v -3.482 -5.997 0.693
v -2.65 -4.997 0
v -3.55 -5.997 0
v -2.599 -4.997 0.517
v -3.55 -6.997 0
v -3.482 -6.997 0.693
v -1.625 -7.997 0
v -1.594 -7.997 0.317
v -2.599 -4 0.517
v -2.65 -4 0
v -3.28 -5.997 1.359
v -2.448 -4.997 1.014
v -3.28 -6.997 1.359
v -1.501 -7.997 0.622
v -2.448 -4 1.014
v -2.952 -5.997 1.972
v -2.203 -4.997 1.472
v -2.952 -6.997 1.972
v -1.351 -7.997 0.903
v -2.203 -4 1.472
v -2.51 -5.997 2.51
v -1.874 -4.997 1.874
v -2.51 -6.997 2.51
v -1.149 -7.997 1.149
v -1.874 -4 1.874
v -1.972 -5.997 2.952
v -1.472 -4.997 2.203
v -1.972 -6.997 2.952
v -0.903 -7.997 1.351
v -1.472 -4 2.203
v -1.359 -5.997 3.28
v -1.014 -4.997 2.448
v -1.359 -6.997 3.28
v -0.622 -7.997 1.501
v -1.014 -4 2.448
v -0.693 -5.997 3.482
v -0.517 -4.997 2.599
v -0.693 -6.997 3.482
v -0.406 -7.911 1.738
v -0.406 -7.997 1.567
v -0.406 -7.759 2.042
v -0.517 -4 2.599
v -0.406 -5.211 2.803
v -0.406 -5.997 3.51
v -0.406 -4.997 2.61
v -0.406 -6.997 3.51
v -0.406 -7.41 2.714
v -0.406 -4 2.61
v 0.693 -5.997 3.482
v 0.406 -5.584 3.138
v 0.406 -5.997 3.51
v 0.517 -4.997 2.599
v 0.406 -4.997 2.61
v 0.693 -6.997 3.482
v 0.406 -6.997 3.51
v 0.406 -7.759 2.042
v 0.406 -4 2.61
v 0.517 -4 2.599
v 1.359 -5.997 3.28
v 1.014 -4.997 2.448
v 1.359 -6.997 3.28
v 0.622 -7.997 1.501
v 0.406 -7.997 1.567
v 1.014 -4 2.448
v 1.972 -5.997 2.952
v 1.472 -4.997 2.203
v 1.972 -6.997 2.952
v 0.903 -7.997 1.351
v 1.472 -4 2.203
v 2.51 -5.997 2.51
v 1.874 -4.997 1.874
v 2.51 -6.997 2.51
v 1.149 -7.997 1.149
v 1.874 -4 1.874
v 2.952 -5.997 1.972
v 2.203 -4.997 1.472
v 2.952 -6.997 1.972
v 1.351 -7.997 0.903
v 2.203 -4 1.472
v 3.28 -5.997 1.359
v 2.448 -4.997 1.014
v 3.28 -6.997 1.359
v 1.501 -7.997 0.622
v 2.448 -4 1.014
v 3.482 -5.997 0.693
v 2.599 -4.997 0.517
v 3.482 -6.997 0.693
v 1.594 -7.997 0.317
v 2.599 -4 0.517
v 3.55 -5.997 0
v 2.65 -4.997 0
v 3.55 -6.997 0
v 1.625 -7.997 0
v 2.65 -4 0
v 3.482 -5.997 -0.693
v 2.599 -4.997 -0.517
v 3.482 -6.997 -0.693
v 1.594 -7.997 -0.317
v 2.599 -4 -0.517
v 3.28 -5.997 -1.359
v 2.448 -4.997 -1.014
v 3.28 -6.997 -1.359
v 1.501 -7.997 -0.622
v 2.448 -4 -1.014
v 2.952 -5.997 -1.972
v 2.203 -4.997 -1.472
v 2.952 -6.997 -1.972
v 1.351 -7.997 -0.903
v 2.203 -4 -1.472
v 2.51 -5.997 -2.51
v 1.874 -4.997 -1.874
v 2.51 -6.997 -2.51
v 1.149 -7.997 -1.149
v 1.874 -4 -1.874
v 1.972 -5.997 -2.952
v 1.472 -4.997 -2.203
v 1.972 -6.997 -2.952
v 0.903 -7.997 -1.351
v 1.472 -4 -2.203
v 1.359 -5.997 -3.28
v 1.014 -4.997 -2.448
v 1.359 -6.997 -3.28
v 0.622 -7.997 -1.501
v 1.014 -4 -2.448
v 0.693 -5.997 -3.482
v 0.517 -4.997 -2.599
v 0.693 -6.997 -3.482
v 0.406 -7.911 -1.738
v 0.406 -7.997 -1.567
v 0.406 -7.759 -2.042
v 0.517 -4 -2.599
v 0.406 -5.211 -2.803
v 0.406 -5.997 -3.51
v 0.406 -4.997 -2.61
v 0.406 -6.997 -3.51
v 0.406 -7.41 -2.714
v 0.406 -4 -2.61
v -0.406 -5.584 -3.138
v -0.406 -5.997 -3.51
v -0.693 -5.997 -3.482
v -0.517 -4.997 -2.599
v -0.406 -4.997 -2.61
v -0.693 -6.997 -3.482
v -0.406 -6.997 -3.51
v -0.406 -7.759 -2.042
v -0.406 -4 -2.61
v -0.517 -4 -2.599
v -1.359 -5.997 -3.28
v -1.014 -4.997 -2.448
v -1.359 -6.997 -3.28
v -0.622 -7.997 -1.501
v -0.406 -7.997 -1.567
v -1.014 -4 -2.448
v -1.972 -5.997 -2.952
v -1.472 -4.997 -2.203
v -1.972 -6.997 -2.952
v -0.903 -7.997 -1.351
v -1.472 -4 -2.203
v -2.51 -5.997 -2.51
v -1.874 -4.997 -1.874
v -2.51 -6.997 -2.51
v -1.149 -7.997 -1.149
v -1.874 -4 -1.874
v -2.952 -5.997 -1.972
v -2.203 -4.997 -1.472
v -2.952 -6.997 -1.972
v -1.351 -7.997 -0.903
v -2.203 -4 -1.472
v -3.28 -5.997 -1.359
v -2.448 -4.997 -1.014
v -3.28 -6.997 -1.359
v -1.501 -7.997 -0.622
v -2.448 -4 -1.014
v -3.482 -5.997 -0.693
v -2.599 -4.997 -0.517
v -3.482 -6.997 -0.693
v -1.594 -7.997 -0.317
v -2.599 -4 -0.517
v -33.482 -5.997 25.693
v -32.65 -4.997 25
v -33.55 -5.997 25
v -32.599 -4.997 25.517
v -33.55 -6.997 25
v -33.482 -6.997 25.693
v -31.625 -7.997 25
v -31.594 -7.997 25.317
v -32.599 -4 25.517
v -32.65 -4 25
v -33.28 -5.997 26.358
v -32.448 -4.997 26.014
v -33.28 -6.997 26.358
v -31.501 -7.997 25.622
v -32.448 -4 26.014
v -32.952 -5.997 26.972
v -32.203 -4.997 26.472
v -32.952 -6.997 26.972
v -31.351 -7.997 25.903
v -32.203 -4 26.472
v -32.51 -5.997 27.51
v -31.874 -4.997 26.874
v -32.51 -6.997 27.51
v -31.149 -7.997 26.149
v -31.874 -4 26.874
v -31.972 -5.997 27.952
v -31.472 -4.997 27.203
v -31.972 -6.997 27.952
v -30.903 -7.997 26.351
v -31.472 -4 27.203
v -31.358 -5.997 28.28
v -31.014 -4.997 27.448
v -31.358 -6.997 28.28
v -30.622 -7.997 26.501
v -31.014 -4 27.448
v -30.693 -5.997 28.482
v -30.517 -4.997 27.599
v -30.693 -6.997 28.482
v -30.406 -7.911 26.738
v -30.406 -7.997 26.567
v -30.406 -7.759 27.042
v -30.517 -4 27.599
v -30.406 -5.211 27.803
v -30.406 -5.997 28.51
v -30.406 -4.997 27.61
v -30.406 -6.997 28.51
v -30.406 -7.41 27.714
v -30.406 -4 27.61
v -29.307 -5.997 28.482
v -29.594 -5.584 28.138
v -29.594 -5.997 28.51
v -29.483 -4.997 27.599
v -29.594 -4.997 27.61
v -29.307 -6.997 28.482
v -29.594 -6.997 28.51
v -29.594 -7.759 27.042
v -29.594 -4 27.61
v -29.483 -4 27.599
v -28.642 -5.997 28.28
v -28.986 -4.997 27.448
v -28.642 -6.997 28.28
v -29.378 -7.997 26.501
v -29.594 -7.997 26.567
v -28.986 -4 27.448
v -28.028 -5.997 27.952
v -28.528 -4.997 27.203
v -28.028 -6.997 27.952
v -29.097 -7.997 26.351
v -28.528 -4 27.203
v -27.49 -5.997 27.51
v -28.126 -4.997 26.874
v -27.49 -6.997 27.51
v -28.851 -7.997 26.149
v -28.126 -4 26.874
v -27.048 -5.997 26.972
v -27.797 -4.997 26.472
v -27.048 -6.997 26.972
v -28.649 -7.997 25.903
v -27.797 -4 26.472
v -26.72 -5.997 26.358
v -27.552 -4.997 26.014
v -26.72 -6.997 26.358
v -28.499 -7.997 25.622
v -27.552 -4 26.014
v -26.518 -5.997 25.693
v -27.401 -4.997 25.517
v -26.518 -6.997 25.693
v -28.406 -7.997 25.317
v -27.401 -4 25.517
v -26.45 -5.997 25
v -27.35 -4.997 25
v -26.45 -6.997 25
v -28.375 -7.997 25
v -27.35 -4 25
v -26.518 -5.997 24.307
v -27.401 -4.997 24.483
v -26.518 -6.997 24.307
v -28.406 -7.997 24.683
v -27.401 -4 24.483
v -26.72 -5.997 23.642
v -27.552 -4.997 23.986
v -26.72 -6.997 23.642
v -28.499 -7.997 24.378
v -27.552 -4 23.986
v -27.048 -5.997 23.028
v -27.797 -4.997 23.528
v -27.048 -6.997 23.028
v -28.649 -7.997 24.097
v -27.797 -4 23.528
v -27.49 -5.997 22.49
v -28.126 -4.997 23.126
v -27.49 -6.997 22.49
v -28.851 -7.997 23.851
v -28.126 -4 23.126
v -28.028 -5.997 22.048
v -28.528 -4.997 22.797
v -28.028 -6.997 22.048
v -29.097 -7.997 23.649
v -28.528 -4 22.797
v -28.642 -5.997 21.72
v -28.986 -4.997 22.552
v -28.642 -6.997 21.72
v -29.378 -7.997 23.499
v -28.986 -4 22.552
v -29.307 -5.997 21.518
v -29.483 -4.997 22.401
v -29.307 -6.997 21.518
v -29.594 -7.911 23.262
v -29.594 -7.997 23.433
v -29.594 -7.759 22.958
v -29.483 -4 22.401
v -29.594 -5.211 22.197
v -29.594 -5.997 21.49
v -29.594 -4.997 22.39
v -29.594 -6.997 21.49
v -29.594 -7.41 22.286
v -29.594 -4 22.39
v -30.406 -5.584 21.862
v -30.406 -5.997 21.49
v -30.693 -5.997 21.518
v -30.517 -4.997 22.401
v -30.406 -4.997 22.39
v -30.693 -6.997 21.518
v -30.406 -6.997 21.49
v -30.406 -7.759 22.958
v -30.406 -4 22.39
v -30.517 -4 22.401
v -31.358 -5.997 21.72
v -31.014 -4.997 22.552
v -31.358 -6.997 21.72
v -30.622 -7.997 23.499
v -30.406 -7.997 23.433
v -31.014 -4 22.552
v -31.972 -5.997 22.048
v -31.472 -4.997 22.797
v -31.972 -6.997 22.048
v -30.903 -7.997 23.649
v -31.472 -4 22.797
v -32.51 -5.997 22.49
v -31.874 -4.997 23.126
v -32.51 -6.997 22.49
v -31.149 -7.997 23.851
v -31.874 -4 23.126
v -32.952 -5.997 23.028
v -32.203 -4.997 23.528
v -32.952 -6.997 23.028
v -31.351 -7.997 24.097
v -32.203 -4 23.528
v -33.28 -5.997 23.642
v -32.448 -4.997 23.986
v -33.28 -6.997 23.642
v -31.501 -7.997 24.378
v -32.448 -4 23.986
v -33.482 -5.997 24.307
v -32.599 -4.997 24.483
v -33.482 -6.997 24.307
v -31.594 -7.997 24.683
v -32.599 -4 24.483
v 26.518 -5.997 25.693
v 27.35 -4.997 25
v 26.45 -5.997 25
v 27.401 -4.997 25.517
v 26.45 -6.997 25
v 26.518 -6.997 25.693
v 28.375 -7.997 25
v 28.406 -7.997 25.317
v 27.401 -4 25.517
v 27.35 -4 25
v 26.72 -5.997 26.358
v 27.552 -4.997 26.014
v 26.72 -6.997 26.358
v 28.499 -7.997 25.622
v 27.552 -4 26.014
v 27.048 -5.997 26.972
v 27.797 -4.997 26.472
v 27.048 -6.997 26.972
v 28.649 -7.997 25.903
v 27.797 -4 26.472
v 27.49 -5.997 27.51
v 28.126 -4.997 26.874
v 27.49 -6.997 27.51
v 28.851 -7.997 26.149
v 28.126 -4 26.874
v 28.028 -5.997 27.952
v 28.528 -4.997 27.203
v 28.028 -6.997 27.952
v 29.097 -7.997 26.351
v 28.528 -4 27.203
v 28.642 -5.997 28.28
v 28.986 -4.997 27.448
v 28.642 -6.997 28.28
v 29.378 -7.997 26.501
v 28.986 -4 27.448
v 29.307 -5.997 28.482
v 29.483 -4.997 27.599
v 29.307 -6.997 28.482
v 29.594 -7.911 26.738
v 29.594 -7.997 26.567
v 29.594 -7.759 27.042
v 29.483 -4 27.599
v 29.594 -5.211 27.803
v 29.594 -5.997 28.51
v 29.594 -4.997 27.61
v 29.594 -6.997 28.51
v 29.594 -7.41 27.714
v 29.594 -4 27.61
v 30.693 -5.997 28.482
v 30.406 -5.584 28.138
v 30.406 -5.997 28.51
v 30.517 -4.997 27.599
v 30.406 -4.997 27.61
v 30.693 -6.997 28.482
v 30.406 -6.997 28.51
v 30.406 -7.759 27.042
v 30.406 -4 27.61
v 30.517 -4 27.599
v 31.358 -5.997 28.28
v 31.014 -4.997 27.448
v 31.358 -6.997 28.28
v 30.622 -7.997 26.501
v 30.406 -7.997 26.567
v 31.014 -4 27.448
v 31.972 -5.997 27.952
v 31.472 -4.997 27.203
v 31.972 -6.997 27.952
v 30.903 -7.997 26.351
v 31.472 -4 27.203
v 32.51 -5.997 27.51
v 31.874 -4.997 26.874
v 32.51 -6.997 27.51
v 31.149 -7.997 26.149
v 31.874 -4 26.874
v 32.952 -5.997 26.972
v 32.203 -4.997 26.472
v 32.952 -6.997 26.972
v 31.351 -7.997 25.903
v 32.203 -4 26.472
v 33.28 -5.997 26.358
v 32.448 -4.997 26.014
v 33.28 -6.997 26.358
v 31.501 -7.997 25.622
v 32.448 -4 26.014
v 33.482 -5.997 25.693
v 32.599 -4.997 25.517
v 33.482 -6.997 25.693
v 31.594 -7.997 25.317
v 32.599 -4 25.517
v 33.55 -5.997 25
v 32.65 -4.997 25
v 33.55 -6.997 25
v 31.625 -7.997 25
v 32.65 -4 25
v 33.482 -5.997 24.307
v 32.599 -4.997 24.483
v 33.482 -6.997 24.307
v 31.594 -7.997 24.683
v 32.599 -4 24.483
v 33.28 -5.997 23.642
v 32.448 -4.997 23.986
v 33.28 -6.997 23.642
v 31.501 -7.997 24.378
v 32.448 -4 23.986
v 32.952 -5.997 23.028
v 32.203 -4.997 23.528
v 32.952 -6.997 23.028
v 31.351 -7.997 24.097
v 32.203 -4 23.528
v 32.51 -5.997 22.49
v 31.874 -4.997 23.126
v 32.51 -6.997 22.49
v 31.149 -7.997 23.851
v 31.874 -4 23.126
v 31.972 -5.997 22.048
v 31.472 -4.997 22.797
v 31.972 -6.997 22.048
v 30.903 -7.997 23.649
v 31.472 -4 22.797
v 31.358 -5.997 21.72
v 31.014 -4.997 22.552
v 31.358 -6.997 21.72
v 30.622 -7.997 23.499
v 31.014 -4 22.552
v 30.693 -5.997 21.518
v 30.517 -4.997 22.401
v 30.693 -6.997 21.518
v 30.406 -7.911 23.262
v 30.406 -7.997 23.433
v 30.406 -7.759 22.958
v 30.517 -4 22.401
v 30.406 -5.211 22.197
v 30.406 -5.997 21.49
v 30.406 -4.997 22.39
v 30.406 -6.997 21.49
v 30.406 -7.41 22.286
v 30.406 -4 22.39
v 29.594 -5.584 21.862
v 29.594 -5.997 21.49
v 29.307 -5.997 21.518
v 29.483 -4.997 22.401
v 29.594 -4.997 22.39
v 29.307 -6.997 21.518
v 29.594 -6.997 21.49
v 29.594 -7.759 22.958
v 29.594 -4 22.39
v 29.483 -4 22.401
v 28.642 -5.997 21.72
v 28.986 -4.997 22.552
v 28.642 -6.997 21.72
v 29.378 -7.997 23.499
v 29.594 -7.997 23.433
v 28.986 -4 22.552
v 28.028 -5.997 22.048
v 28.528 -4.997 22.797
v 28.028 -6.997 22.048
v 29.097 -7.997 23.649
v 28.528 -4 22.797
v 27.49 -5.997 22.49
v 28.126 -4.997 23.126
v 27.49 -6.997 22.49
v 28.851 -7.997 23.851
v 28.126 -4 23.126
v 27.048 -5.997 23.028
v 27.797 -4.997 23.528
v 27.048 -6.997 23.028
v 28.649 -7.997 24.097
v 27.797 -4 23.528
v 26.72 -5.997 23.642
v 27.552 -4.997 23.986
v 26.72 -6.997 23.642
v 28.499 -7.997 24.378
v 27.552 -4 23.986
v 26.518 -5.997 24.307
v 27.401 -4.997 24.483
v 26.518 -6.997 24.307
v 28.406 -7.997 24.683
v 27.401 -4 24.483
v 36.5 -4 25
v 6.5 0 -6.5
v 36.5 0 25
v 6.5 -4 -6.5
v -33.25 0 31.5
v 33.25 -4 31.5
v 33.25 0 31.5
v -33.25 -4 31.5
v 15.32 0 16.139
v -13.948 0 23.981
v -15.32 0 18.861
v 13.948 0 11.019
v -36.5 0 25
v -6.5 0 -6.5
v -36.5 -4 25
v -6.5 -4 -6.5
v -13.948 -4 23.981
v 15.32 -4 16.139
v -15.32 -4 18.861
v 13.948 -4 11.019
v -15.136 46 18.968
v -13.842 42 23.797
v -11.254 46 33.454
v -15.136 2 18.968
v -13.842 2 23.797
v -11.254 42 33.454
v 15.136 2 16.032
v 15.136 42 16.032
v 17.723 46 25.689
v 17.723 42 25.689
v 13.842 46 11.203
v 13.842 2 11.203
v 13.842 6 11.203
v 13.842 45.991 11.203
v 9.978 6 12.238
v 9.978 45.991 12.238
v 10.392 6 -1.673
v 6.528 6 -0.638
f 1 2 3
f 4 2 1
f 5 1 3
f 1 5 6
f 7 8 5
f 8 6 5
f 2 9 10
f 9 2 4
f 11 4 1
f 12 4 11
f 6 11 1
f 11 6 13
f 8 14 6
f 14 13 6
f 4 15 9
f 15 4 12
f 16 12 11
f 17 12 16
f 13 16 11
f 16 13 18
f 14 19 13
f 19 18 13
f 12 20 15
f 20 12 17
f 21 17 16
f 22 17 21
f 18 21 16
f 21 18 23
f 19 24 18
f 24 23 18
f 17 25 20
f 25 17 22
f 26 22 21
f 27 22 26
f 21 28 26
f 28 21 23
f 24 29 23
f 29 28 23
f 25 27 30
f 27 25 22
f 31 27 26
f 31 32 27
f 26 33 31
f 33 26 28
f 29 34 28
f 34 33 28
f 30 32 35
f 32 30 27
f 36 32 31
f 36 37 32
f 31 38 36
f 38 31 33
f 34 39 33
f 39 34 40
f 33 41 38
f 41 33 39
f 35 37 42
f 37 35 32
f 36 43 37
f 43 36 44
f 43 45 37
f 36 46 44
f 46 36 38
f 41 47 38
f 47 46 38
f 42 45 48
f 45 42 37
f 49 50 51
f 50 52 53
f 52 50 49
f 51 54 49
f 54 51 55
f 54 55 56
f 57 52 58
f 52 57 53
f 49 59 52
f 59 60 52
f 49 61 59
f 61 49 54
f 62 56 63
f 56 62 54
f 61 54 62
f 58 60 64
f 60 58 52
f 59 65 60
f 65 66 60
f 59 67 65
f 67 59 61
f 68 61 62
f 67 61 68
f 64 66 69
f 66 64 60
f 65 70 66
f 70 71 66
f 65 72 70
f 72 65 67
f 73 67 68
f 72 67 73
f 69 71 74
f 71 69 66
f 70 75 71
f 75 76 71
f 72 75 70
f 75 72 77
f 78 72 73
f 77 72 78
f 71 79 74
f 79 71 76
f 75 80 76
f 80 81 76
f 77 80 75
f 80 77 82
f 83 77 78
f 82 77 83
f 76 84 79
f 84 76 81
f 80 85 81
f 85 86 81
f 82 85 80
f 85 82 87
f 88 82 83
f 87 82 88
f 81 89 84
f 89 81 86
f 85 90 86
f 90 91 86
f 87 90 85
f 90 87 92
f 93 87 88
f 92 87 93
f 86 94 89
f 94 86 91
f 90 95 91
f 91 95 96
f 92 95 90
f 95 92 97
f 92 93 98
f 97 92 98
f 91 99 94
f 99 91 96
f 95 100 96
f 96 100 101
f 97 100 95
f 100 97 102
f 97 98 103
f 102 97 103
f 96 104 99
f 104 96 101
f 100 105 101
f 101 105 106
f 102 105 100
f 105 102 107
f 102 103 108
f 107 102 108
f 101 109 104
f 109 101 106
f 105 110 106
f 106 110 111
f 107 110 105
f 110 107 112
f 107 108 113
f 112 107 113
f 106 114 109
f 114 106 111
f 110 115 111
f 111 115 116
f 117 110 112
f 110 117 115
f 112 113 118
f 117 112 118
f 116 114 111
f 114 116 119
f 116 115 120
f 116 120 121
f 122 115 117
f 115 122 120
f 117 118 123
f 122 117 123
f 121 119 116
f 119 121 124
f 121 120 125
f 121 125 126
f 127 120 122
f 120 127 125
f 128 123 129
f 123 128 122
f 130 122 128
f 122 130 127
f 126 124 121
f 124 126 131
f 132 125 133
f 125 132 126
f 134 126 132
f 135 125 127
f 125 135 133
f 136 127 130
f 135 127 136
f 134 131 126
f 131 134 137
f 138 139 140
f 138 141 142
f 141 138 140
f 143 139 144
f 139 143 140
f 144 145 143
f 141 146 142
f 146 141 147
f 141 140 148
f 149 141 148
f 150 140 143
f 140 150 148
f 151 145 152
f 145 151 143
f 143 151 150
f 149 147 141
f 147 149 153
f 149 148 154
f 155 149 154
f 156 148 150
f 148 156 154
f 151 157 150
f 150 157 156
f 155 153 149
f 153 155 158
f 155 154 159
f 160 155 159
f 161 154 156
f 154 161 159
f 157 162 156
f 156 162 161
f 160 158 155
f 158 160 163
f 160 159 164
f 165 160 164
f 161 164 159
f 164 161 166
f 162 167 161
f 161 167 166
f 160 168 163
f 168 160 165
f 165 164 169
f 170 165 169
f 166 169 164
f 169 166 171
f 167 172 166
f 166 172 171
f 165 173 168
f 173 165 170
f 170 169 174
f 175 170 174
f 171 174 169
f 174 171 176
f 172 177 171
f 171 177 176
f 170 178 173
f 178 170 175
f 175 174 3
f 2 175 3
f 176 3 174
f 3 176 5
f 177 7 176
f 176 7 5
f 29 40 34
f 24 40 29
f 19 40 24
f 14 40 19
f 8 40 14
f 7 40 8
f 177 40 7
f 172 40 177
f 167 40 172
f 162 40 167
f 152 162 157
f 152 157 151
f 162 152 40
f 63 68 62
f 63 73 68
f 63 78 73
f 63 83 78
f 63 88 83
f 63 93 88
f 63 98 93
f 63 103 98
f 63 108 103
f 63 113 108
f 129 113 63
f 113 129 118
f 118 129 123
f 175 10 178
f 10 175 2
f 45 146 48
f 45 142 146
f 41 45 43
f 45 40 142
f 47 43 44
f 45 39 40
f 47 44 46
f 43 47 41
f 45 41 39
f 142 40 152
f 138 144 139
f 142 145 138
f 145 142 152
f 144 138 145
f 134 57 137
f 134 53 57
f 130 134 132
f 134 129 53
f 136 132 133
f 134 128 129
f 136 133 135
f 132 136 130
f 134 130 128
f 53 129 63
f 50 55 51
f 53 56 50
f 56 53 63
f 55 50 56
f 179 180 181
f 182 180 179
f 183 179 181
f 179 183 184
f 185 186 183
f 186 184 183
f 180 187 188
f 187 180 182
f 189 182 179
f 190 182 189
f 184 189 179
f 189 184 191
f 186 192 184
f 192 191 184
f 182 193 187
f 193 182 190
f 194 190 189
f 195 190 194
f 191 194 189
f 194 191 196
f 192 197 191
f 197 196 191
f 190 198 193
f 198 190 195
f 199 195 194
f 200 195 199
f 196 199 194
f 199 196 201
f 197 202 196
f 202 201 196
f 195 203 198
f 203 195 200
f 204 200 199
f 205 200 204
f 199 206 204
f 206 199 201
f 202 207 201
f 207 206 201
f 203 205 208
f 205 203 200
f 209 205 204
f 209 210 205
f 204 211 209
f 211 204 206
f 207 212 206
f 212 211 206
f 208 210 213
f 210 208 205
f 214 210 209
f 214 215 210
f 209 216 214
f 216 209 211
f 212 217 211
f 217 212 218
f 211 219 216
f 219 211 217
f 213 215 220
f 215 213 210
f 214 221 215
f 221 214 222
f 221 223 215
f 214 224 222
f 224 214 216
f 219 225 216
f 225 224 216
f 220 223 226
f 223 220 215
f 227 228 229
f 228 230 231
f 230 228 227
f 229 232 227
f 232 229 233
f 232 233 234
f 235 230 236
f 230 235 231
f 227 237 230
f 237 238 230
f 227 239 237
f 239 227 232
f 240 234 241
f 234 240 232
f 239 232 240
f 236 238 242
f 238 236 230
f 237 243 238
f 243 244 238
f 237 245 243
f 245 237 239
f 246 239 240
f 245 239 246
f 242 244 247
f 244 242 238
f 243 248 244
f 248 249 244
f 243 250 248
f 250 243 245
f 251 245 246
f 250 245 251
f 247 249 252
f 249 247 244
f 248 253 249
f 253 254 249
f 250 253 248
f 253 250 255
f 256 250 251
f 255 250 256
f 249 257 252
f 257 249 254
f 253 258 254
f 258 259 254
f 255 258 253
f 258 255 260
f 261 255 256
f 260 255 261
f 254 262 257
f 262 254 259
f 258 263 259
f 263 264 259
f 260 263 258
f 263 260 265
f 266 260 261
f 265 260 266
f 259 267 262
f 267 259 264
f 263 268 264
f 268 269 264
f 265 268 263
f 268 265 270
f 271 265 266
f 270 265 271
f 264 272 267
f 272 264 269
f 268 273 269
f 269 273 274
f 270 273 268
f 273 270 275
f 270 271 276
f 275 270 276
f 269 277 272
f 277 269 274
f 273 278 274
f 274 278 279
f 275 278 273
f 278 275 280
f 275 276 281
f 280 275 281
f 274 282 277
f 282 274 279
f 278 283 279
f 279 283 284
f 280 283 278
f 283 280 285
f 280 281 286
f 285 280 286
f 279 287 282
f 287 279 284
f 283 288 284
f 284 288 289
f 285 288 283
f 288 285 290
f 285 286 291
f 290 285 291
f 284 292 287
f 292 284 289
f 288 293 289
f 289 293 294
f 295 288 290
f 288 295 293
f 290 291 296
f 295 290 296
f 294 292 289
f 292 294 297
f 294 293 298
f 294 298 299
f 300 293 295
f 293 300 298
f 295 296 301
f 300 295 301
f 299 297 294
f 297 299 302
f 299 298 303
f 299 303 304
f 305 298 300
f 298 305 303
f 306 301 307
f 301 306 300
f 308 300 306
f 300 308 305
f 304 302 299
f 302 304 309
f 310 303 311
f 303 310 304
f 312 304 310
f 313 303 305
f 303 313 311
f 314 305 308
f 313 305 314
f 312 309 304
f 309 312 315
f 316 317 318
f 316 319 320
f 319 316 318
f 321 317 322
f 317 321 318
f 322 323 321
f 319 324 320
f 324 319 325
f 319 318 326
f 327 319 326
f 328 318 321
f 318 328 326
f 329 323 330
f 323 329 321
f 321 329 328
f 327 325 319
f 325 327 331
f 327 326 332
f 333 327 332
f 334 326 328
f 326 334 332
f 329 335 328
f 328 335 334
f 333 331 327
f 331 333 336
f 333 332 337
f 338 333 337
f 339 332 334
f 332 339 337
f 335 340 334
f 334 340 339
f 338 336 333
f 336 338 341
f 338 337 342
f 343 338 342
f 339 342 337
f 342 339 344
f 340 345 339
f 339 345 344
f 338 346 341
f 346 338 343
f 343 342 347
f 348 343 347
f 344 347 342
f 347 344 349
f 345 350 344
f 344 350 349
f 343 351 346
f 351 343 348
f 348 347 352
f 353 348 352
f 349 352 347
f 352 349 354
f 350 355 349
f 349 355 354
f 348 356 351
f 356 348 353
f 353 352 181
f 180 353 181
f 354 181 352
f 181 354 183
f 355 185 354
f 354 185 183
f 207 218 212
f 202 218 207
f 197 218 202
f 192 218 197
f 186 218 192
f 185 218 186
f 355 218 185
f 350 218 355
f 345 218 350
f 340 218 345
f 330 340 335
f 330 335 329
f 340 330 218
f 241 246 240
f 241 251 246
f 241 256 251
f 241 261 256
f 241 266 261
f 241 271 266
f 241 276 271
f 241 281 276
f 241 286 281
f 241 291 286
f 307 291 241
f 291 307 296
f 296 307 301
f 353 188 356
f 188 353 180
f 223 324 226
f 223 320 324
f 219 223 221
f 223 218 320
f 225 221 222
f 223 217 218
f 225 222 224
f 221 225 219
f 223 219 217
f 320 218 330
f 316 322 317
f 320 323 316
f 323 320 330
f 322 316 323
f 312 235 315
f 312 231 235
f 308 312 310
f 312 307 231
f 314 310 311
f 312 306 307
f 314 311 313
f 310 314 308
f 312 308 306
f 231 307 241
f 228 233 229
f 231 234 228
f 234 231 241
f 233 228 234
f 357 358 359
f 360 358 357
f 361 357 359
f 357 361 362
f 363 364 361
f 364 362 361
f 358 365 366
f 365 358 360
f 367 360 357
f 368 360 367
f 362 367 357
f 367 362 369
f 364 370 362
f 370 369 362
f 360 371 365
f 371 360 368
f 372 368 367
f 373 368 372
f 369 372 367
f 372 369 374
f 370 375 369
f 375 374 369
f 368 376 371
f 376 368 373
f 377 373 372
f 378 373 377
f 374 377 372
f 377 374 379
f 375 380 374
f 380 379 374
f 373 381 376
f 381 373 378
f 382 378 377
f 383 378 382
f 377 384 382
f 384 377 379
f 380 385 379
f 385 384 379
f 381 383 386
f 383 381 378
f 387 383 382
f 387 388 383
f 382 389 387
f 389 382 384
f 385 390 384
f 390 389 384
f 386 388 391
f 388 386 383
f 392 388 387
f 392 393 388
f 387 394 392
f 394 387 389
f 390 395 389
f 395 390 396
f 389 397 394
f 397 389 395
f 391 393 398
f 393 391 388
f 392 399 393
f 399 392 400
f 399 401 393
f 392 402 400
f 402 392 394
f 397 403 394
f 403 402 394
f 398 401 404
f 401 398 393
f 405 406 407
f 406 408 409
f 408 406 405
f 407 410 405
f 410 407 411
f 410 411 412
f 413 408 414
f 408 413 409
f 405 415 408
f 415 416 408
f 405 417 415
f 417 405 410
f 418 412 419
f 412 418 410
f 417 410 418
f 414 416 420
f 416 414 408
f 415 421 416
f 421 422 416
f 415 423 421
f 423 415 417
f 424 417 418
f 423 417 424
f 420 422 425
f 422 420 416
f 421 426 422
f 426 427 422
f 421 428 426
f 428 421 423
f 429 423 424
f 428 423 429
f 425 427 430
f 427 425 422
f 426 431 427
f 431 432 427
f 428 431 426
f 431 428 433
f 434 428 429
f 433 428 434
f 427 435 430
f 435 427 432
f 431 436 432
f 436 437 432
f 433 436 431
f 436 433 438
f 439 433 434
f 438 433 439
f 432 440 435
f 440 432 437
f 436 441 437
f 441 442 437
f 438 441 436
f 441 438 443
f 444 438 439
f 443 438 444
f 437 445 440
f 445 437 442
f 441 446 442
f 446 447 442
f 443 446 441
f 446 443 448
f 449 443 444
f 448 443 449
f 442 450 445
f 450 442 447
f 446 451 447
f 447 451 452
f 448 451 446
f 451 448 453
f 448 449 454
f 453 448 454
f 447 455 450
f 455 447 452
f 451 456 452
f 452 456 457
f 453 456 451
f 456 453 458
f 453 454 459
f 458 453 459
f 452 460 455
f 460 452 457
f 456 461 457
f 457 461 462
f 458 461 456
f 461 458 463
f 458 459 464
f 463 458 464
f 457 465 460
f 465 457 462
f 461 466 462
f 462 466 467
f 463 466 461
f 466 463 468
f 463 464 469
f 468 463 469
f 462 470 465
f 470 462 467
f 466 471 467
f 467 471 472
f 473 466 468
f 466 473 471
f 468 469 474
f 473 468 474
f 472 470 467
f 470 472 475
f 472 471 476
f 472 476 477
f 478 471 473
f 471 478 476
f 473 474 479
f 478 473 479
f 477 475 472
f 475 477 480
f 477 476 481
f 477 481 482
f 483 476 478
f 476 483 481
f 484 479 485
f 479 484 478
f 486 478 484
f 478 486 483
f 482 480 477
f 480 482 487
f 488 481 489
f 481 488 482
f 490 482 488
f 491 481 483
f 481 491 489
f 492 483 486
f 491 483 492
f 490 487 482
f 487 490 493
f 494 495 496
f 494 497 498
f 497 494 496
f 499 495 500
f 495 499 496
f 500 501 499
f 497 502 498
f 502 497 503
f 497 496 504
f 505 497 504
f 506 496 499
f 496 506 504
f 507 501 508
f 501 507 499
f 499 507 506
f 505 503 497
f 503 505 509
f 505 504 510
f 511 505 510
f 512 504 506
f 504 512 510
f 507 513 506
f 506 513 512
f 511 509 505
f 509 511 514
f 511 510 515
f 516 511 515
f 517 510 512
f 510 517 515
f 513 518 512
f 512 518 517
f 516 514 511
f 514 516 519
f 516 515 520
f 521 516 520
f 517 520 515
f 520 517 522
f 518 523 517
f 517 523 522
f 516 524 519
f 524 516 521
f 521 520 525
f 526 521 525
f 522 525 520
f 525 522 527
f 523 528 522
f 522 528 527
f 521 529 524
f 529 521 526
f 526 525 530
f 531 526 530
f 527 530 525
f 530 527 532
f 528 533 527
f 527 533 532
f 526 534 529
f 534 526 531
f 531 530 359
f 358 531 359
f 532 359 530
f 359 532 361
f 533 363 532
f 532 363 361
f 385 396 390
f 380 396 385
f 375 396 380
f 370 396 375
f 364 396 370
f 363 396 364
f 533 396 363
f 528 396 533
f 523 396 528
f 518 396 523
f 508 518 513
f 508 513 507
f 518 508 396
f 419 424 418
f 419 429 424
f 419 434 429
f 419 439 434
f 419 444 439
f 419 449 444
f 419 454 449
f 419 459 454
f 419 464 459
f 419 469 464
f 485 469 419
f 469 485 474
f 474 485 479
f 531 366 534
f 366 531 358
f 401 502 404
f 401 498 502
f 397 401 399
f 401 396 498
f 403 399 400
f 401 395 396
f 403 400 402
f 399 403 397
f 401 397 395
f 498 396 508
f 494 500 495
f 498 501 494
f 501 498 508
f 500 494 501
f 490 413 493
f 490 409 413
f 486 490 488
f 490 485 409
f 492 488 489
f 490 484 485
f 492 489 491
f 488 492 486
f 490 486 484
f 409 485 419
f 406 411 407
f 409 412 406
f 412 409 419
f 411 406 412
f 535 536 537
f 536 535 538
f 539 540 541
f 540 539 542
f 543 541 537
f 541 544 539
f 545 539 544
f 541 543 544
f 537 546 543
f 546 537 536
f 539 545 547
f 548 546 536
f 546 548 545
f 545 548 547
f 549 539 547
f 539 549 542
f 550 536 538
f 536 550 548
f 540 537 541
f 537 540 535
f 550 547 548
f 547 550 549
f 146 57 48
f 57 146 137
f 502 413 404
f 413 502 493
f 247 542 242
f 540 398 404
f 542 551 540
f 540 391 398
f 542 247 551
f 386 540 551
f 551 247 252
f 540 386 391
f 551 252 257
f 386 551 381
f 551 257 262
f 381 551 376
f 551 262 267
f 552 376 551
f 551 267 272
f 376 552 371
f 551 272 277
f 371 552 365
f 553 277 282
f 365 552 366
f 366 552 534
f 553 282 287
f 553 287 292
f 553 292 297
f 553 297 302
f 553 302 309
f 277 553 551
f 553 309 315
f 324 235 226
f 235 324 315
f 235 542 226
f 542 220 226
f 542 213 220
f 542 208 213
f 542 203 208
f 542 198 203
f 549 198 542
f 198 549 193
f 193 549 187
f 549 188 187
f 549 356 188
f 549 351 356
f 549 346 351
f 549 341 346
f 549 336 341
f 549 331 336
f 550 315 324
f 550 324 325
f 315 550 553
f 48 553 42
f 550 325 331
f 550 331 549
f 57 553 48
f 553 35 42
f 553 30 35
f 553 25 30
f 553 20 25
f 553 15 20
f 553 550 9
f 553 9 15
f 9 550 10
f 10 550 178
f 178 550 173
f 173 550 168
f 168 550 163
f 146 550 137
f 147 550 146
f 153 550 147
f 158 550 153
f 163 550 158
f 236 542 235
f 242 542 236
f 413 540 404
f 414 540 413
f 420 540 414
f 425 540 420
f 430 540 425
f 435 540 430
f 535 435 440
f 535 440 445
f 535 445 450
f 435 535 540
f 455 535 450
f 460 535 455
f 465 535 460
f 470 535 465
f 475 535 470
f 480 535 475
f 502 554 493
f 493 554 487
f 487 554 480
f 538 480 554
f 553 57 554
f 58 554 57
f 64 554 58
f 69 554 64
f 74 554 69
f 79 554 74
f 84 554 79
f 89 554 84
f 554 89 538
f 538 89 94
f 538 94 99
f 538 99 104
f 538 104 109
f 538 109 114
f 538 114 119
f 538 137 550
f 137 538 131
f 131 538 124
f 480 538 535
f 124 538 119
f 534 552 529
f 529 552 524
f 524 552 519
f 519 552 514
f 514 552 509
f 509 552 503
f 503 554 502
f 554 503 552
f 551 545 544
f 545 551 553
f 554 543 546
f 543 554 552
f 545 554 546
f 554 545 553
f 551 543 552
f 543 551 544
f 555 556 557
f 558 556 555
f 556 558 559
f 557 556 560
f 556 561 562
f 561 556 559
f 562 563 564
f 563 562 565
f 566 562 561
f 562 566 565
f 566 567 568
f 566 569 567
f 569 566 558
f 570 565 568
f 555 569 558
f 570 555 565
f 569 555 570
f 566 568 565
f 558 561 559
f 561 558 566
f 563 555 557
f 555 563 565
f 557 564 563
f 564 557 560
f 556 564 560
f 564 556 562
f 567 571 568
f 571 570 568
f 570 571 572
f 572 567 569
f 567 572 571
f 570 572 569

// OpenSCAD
// file: plug.scad
module plug(r=3.5, gap=0.3){
	
	cut = r/4;
	len = 100;
	
	difference(){
	    rotate_extrude(angle=360, $fn=32){
		    polygon([
				[0,0],
				[r-2*gap,0],
				[r-2*gap,1],
				[r+gap,2],
				[r+gap,3],
				[r/2,4],
				[0,4]
			]);
		}
		
		translate([-cut/2,-len/2,-len/2]){
			cube([cut,len,len],center=false);
		}
		
	}
	
}

plug();
// main file
use <plug.scad>

xd=60;
zd=25;

d=6.5;

thick = 4;

gap = 0.3;

dots = [
			[-d,-d],
			[d,-d],
			[xd/2+d,zd],
			[xd/2+d/2,zd+d],
			[-xd/2-d/2,zd+d],		
			[-xd/2-d,zd],	
		];
		
hw = 30;
hh = 5;	
shelf = 40;	
angle = 15;
hole_pos = 0.7;

rotate(v=[1,0,0],a=90){
	difference(){
		union(){
			linear_extrude(thick){
				polygon(dots);
			}

			translate([0,0,thick-gap/100]){
				plug(r=d/2, gap=gap);	
			}
			translate([-xd/2,zd,thick-gap/100]){
				plug(r=d/2, gap=gap);	
			}
			translate([+xd/2,zd,thick-gap/100]){
				plug(r=d/2, gap=gap);	
			}
		}
		
		translate([0,hole_pos*zd,0]){
			rotate(v=[0,0,1],a=-angle){
				cube([hw+gap,hh+gap,100],center = true);
			}
		}
	}
}

translate([0,thick+shelf/2,hole_pos*zd]){
	rotate(v=[0,1,0],a=angle){
		cube([hw,thick+shelf,hh],center = true);
		translate([0,shelf/2,hh+hh/2-gap/100]){
			cube([hw,thick,2*hh],center = true);
		}

		translate([hw/2,shelf/2+thick/2,-hh/2+gap/100]){
	        rotate(v=[0,0,1],a=180){
				rotate(v=[0,1,0],a=90){
		  	        linear_extrude(thick){
					    polygon([ [0,shelf], [0,0], [shelf/3,shelf] ]);
				    }
				}
		    }
		}
	}
}
